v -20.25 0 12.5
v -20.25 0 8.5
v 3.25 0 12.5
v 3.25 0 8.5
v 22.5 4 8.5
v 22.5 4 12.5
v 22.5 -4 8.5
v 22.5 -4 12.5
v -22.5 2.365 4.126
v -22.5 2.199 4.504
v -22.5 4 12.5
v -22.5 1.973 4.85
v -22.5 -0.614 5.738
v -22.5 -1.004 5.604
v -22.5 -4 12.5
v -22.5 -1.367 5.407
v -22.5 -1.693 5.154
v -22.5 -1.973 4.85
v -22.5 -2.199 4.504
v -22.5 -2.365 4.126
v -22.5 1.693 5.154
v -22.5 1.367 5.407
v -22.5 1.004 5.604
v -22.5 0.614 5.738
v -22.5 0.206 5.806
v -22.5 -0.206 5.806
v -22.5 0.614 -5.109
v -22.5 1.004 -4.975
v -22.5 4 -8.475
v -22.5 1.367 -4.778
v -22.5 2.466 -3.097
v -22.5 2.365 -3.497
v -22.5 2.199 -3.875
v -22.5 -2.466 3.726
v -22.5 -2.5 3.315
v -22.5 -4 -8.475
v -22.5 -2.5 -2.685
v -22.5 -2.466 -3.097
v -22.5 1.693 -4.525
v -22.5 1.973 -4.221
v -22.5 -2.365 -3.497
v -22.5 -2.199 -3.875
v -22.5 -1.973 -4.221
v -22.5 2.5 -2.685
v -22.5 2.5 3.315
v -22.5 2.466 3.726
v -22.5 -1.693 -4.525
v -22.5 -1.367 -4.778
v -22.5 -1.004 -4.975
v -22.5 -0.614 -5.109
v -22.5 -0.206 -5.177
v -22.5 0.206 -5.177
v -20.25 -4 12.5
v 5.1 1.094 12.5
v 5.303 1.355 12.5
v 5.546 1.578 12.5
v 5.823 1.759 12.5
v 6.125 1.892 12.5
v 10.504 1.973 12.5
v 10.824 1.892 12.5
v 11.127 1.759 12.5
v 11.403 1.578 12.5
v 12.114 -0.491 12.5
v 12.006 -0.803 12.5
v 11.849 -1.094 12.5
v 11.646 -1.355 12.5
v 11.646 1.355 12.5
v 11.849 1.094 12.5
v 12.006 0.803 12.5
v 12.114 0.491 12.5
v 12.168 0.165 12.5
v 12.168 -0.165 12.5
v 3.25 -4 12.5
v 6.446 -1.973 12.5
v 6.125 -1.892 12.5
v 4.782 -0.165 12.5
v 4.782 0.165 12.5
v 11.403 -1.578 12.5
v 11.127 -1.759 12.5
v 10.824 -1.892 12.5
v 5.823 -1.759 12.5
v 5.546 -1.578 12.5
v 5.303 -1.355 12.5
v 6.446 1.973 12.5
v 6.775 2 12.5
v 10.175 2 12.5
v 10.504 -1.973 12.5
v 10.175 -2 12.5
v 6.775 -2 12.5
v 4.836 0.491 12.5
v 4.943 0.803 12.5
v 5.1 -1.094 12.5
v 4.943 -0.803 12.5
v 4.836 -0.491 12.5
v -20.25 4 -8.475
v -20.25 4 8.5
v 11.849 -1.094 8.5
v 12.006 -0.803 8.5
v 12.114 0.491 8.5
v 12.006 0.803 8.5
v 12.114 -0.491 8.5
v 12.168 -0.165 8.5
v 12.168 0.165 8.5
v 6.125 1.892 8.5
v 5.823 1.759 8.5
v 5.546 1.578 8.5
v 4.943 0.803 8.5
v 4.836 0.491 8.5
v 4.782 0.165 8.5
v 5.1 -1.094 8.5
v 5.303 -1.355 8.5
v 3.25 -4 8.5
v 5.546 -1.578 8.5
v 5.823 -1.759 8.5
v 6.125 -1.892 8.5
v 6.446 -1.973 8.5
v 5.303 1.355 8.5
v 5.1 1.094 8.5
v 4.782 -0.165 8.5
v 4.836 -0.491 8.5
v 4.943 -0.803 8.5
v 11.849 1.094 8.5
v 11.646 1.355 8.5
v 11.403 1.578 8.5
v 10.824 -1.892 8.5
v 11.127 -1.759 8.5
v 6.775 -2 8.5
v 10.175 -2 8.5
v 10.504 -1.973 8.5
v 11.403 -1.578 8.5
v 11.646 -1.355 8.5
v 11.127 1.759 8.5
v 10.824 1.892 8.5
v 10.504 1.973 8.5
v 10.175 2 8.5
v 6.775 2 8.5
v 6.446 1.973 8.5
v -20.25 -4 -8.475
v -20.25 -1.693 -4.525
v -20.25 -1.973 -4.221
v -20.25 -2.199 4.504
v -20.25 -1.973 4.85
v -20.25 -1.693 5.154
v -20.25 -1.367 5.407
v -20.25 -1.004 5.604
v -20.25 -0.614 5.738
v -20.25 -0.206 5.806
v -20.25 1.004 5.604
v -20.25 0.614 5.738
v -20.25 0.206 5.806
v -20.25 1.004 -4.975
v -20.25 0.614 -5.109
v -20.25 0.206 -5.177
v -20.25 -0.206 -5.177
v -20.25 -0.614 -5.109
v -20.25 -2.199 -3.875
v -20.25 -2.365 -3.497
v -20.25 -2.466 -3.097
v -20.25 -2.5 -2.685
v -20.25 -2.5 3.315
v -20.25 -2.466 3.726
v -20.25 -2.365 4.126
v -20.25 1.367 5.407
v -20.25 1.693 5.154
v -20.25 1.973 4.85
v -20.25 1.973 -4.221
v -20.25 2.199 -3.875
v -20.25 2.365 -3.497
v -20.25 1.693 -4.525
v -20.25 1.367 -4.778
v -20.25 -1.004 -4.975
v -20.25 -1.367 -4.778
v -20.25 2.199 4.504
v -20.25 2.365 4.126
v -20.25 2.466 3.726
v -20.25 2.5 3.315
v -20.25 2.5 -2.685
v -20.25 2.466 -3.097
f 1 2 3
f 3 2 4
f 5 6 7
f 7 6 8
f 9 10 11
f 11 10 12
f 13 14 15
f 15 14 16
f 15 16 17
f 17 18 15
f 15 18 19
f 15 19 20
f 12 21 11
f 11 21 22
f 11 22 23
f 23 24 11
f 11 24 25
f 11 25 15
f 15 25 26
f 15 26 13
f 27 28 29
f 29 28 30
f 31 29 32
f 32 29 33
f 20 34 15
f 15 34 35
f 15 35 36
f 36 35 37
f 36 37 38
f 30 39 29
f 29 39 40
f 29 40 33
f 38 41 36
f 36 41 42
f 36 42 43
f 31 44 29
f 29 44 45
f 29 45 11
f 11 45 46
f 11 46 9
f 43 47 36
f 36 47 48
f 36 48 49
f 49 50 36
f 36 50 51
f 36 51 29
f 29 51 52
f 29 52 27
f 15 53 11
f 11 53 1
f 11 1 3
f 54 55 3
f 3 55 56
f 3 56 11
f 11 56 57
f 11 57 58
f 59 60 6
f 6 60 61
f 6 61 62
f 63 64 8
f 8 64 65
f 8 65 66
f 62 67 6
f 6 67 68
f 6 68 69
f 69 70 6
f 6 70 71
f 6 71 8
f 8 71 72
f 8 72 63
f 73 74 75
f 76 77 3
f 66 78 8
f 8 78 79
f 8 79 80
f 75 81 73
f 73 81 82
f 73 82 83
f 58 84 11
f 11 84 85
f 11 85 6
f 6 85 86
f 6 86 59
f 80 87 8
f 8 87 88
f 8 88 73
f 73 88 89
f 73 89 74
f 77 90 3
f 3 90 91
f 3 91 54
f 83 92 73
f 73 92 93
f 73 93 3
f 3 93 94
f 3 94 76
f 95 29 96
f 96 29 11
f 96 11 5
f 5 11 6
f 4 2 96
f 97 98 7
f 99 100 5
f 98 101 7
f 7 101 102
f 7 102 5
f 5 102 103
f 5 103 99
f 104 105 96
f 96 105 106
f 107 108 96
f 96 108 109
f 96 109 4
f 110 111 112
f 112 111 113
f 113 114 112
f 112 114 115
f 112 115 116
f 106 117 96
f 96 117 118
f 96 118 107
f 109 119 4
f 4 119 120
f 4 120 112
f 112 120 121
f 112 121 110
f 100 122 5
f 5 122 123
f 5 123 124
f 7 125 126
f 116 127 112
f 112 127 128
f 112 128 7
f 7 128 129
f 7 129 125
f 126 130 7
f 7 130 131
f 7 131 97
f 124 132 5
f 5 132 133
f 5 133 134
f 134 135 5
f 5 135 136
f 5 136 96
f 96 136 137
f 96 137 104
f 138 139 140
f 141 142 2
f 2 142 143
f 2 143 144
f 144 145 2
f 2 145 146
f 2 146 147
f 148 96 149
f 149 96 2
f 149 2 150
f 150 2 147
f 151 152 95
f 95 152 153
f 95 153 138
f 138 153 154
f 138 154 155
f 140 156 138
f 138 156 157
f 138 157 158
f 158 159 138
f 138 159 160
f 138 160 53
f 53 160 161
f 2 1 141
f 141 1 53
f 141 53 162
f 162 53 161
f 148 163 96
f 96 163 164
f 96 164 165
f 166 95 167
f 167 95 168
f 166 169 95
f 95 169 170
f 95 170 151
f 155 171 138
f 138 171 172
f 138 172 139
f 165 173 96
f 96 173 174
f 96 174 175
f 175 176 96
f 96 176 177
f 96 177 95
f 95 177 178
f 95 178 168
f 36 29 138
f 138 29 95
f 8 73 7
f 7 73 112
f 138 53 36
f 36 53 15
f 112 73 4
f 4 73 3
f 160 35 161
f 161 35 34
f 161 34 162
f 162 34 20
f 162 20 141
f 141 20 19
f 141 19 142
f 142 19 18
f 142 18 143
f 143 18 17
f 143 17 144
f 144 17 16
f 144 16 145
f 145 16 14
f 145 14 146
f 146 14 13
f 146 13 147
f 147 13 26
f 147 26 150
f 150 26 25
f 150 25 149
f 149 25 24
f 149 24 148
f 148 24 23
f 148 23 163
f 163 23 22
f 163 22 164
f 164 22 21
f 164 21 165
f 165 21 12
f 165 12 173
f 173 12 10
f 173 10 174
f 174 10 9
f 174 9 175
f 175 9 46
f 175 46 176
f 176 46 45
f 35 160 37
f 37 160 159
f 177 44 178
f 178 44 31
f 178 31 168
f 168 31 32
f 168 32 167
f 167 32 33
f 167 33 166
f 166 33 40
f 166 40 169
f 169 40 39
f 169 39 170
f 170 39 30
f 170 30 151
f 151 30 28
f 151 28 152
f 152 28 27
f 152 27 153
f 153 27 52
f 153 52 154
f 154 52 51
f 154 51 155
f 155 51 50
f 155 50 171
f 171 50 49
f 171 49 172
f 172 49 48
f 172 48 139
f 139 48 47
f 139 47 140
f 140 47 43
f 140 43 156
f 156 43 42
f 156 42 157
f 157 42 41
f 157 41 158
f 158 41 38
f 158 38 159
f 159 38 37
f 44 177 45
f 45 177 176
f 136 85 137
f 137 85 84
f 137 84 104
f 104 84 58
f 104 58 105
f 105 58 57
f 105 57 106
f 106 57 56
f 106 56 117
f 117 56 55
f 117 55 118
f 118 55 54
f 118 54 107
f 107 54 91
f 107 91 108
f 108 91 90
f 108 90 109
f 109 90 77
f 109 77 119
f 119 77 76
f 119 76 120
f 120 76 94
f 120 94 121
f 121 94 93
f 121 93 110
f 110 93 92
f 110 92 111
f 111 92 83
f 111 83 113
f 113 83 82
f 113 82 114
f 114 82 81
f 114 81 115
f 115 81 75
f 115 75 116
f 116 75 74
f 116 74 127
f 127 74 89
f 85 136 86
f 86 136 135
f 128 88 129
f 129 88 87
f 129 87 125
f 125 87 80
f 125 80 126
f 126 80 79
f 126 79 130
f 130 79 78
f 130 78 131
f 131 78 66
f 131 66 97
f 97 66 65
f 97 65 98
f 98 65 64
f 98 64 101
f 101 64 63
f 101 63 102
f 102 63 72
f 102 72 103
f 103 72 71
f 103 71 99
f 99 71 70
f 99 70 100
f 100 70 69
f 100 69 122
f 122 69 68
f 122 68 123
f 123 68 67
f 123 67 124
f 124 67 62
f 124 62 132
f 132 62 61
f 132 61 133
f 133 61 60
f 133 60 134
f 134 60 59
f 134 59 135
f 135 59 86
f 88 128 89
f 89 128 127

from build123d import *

# Parameters (mm, degrees)
SKETCH1_W           = 45
SKETCH1_H           = 25
BOSS_EXTRUDE1_DEPTH = 4
SKETCH5_W           = 40.5
SKETCH5_H           = 17
CUT_EXTRUDE2_DEPTH  = 27.048032555
SKETCH6_W           = 45
SKETCH6_H           = 4.025345596
CUT_EXTRUDE3_DEPTH  = 27.048032555
SKETCH13_W          = 2.25
SKETCH13_H          = 20.974654404
BOSS_EXTRUDE3_DEPTH = 8
SKETCH16_W          = 2.25
SKETCH16_H          = 20.974654404
BOSS_EXTRUDE4_DEPTH = 8
SKETCH19_W          = 17
SKETCH19_H          = 4
BOSS_EXTRUDE5_DEPTH = 4
SKETCH21_W          = 2.25
SKETCH21_H          = 16.974654404
CUT_EXTRUDE7_DEPTH  = 27.953663944
CUT_EXTRUDE9_DEPTH  = 47.874833333
CUT_EXTRUDE14_DEPTH = 32.019125187


with BuildPart() as part:
    # Sketch1 → Boss-Extrude1 (new body)
    with BuildSketch(Plane(origin=(0, 0, 0), x_dir=(1, 0, 0), z_dir=(0, 1, 0))):
        Rectangle(SKETCH1_W, SKETCH1_H)
    extrude(amount=BOSS_EXTRUDE1_DEPTH)

    # Sketch5 → Cut-Extrude2 (cut, through all)
    with BuildSketch(Plane(origin=(0, 4, 0), x_dir=(1, 0, 0), z_dir=(0, 1, 0))):
        Rectangle(SKETCH5_W, SKETCH5_H)
    extrude(amount=-CUT_EXTRUDE2_DEPTH, mode=Mode.SUBTRACT)

    # Sketch6 → Cut-Extrude3 (cut, through all)
    with BuildSketch(Plane(origin=(0, 4, 0), x_dir=(1, 0, 0), z_dir=(0, 1, 0))):
        with Locations((0, 10.487327202)):
            Rectangle(SKETCH6_W, SKETCH6_H)
    extrude(amount=-CUT_EXTRUDE3_DEPTH, mode=Mode.SUBTRACT)

    # Sketch13 → Boss-Extrude3 (add)
    with BuildSketch(Plane(origin=(0, 4, 0), x_dir=(1, 0, 0), z_dir=(0, 1, 0))):
        with Locations((21.375, -2.012672798)):
            Rectangle(SKETCH13_W, SKETCH13_H)
    extrude(amount=-BOSS_EXTRUDE3_DEPTH)

    # Sketch16 → Boss-Extrude4 (add)
    with BuildSketch(Plane(origin=(0, 4, 0), x_dir=(1, 0, 0), z_dir=(0, 1, 0))):
        with Locations((-21.375, -2.012672798)):
            Rectangle(SKETCH16_W, SKETCH16_H)
    extrude(amount=-BOSS_EXTRUDE4_DEPTH)

    # Sketch19 → Boss-Extrude5 (add)
    with BuildSketch(Plane.XZ):
        with Locations((11.75, 10.5)):
            Rectangle(SKETCH19_W, SKETCH19_H)
    extrude(amount=BOSS_EXTRUDE5_DEPTH)

    # Sketch21 → Cut-Extrude7 (cut, through all)
    with BuildSketch(Plane(origin=(0, 4, 0), x_dir=(1, 0, 0), z_dir=(0, 1, 0))):
        with Locations((21.375, -0.012672798)):
            Rectangle(SKETCH21_W, SKETCH21_H)
    extrude(amount=-CUT_EXTRUDE7_DEPTH, mode=Mode.SUBTRACT)

    # Sketch25 → Cut-Extrude9 (cut, through all)
    with BuildSketch(Plane.ZY.offset(22.5)):
        with BuildLine():
            Line((3.314549123, -2.5), (-2.685450877, -2.5))
            ThreePointArc((-2.685450877, -2.5), (-5.185450877, 0), (-2.685450877, 2.5))
            Line((-2.685450877, 2.5), (3.314549123, 2.5))
            ThreePointArc((3.314549123, 2.5), (5.814549123, 0), (3.314549123, -2.5))
        make_face()
    extrude(amount=-CUT_EXTRUDE9_DEPTH, mode=Mode.SUBTRACT)

    # Sketch29 → Cut-Extrude14 (cut, through all)
    with BuildSketch(Plane.XY.offset(12.5)):
        with BuildLine():
            Line((6.774762471, 2), (10.174762471, 2))
            ThreePointArc((10.174762471, 2), (12.174762471, 0), (10.174762471, -2))
            Line((10.174762471, -2), (6.774762471, -2))
            ThreePointArc((6.774762471, -2), (4.774762471, 0), (6.774762471, 2))
        make_face()
    extrude(amount=-CUT_EXTRUDE14_DEPTH, mode=Mode.SUBTRACT)


solid = part.part
